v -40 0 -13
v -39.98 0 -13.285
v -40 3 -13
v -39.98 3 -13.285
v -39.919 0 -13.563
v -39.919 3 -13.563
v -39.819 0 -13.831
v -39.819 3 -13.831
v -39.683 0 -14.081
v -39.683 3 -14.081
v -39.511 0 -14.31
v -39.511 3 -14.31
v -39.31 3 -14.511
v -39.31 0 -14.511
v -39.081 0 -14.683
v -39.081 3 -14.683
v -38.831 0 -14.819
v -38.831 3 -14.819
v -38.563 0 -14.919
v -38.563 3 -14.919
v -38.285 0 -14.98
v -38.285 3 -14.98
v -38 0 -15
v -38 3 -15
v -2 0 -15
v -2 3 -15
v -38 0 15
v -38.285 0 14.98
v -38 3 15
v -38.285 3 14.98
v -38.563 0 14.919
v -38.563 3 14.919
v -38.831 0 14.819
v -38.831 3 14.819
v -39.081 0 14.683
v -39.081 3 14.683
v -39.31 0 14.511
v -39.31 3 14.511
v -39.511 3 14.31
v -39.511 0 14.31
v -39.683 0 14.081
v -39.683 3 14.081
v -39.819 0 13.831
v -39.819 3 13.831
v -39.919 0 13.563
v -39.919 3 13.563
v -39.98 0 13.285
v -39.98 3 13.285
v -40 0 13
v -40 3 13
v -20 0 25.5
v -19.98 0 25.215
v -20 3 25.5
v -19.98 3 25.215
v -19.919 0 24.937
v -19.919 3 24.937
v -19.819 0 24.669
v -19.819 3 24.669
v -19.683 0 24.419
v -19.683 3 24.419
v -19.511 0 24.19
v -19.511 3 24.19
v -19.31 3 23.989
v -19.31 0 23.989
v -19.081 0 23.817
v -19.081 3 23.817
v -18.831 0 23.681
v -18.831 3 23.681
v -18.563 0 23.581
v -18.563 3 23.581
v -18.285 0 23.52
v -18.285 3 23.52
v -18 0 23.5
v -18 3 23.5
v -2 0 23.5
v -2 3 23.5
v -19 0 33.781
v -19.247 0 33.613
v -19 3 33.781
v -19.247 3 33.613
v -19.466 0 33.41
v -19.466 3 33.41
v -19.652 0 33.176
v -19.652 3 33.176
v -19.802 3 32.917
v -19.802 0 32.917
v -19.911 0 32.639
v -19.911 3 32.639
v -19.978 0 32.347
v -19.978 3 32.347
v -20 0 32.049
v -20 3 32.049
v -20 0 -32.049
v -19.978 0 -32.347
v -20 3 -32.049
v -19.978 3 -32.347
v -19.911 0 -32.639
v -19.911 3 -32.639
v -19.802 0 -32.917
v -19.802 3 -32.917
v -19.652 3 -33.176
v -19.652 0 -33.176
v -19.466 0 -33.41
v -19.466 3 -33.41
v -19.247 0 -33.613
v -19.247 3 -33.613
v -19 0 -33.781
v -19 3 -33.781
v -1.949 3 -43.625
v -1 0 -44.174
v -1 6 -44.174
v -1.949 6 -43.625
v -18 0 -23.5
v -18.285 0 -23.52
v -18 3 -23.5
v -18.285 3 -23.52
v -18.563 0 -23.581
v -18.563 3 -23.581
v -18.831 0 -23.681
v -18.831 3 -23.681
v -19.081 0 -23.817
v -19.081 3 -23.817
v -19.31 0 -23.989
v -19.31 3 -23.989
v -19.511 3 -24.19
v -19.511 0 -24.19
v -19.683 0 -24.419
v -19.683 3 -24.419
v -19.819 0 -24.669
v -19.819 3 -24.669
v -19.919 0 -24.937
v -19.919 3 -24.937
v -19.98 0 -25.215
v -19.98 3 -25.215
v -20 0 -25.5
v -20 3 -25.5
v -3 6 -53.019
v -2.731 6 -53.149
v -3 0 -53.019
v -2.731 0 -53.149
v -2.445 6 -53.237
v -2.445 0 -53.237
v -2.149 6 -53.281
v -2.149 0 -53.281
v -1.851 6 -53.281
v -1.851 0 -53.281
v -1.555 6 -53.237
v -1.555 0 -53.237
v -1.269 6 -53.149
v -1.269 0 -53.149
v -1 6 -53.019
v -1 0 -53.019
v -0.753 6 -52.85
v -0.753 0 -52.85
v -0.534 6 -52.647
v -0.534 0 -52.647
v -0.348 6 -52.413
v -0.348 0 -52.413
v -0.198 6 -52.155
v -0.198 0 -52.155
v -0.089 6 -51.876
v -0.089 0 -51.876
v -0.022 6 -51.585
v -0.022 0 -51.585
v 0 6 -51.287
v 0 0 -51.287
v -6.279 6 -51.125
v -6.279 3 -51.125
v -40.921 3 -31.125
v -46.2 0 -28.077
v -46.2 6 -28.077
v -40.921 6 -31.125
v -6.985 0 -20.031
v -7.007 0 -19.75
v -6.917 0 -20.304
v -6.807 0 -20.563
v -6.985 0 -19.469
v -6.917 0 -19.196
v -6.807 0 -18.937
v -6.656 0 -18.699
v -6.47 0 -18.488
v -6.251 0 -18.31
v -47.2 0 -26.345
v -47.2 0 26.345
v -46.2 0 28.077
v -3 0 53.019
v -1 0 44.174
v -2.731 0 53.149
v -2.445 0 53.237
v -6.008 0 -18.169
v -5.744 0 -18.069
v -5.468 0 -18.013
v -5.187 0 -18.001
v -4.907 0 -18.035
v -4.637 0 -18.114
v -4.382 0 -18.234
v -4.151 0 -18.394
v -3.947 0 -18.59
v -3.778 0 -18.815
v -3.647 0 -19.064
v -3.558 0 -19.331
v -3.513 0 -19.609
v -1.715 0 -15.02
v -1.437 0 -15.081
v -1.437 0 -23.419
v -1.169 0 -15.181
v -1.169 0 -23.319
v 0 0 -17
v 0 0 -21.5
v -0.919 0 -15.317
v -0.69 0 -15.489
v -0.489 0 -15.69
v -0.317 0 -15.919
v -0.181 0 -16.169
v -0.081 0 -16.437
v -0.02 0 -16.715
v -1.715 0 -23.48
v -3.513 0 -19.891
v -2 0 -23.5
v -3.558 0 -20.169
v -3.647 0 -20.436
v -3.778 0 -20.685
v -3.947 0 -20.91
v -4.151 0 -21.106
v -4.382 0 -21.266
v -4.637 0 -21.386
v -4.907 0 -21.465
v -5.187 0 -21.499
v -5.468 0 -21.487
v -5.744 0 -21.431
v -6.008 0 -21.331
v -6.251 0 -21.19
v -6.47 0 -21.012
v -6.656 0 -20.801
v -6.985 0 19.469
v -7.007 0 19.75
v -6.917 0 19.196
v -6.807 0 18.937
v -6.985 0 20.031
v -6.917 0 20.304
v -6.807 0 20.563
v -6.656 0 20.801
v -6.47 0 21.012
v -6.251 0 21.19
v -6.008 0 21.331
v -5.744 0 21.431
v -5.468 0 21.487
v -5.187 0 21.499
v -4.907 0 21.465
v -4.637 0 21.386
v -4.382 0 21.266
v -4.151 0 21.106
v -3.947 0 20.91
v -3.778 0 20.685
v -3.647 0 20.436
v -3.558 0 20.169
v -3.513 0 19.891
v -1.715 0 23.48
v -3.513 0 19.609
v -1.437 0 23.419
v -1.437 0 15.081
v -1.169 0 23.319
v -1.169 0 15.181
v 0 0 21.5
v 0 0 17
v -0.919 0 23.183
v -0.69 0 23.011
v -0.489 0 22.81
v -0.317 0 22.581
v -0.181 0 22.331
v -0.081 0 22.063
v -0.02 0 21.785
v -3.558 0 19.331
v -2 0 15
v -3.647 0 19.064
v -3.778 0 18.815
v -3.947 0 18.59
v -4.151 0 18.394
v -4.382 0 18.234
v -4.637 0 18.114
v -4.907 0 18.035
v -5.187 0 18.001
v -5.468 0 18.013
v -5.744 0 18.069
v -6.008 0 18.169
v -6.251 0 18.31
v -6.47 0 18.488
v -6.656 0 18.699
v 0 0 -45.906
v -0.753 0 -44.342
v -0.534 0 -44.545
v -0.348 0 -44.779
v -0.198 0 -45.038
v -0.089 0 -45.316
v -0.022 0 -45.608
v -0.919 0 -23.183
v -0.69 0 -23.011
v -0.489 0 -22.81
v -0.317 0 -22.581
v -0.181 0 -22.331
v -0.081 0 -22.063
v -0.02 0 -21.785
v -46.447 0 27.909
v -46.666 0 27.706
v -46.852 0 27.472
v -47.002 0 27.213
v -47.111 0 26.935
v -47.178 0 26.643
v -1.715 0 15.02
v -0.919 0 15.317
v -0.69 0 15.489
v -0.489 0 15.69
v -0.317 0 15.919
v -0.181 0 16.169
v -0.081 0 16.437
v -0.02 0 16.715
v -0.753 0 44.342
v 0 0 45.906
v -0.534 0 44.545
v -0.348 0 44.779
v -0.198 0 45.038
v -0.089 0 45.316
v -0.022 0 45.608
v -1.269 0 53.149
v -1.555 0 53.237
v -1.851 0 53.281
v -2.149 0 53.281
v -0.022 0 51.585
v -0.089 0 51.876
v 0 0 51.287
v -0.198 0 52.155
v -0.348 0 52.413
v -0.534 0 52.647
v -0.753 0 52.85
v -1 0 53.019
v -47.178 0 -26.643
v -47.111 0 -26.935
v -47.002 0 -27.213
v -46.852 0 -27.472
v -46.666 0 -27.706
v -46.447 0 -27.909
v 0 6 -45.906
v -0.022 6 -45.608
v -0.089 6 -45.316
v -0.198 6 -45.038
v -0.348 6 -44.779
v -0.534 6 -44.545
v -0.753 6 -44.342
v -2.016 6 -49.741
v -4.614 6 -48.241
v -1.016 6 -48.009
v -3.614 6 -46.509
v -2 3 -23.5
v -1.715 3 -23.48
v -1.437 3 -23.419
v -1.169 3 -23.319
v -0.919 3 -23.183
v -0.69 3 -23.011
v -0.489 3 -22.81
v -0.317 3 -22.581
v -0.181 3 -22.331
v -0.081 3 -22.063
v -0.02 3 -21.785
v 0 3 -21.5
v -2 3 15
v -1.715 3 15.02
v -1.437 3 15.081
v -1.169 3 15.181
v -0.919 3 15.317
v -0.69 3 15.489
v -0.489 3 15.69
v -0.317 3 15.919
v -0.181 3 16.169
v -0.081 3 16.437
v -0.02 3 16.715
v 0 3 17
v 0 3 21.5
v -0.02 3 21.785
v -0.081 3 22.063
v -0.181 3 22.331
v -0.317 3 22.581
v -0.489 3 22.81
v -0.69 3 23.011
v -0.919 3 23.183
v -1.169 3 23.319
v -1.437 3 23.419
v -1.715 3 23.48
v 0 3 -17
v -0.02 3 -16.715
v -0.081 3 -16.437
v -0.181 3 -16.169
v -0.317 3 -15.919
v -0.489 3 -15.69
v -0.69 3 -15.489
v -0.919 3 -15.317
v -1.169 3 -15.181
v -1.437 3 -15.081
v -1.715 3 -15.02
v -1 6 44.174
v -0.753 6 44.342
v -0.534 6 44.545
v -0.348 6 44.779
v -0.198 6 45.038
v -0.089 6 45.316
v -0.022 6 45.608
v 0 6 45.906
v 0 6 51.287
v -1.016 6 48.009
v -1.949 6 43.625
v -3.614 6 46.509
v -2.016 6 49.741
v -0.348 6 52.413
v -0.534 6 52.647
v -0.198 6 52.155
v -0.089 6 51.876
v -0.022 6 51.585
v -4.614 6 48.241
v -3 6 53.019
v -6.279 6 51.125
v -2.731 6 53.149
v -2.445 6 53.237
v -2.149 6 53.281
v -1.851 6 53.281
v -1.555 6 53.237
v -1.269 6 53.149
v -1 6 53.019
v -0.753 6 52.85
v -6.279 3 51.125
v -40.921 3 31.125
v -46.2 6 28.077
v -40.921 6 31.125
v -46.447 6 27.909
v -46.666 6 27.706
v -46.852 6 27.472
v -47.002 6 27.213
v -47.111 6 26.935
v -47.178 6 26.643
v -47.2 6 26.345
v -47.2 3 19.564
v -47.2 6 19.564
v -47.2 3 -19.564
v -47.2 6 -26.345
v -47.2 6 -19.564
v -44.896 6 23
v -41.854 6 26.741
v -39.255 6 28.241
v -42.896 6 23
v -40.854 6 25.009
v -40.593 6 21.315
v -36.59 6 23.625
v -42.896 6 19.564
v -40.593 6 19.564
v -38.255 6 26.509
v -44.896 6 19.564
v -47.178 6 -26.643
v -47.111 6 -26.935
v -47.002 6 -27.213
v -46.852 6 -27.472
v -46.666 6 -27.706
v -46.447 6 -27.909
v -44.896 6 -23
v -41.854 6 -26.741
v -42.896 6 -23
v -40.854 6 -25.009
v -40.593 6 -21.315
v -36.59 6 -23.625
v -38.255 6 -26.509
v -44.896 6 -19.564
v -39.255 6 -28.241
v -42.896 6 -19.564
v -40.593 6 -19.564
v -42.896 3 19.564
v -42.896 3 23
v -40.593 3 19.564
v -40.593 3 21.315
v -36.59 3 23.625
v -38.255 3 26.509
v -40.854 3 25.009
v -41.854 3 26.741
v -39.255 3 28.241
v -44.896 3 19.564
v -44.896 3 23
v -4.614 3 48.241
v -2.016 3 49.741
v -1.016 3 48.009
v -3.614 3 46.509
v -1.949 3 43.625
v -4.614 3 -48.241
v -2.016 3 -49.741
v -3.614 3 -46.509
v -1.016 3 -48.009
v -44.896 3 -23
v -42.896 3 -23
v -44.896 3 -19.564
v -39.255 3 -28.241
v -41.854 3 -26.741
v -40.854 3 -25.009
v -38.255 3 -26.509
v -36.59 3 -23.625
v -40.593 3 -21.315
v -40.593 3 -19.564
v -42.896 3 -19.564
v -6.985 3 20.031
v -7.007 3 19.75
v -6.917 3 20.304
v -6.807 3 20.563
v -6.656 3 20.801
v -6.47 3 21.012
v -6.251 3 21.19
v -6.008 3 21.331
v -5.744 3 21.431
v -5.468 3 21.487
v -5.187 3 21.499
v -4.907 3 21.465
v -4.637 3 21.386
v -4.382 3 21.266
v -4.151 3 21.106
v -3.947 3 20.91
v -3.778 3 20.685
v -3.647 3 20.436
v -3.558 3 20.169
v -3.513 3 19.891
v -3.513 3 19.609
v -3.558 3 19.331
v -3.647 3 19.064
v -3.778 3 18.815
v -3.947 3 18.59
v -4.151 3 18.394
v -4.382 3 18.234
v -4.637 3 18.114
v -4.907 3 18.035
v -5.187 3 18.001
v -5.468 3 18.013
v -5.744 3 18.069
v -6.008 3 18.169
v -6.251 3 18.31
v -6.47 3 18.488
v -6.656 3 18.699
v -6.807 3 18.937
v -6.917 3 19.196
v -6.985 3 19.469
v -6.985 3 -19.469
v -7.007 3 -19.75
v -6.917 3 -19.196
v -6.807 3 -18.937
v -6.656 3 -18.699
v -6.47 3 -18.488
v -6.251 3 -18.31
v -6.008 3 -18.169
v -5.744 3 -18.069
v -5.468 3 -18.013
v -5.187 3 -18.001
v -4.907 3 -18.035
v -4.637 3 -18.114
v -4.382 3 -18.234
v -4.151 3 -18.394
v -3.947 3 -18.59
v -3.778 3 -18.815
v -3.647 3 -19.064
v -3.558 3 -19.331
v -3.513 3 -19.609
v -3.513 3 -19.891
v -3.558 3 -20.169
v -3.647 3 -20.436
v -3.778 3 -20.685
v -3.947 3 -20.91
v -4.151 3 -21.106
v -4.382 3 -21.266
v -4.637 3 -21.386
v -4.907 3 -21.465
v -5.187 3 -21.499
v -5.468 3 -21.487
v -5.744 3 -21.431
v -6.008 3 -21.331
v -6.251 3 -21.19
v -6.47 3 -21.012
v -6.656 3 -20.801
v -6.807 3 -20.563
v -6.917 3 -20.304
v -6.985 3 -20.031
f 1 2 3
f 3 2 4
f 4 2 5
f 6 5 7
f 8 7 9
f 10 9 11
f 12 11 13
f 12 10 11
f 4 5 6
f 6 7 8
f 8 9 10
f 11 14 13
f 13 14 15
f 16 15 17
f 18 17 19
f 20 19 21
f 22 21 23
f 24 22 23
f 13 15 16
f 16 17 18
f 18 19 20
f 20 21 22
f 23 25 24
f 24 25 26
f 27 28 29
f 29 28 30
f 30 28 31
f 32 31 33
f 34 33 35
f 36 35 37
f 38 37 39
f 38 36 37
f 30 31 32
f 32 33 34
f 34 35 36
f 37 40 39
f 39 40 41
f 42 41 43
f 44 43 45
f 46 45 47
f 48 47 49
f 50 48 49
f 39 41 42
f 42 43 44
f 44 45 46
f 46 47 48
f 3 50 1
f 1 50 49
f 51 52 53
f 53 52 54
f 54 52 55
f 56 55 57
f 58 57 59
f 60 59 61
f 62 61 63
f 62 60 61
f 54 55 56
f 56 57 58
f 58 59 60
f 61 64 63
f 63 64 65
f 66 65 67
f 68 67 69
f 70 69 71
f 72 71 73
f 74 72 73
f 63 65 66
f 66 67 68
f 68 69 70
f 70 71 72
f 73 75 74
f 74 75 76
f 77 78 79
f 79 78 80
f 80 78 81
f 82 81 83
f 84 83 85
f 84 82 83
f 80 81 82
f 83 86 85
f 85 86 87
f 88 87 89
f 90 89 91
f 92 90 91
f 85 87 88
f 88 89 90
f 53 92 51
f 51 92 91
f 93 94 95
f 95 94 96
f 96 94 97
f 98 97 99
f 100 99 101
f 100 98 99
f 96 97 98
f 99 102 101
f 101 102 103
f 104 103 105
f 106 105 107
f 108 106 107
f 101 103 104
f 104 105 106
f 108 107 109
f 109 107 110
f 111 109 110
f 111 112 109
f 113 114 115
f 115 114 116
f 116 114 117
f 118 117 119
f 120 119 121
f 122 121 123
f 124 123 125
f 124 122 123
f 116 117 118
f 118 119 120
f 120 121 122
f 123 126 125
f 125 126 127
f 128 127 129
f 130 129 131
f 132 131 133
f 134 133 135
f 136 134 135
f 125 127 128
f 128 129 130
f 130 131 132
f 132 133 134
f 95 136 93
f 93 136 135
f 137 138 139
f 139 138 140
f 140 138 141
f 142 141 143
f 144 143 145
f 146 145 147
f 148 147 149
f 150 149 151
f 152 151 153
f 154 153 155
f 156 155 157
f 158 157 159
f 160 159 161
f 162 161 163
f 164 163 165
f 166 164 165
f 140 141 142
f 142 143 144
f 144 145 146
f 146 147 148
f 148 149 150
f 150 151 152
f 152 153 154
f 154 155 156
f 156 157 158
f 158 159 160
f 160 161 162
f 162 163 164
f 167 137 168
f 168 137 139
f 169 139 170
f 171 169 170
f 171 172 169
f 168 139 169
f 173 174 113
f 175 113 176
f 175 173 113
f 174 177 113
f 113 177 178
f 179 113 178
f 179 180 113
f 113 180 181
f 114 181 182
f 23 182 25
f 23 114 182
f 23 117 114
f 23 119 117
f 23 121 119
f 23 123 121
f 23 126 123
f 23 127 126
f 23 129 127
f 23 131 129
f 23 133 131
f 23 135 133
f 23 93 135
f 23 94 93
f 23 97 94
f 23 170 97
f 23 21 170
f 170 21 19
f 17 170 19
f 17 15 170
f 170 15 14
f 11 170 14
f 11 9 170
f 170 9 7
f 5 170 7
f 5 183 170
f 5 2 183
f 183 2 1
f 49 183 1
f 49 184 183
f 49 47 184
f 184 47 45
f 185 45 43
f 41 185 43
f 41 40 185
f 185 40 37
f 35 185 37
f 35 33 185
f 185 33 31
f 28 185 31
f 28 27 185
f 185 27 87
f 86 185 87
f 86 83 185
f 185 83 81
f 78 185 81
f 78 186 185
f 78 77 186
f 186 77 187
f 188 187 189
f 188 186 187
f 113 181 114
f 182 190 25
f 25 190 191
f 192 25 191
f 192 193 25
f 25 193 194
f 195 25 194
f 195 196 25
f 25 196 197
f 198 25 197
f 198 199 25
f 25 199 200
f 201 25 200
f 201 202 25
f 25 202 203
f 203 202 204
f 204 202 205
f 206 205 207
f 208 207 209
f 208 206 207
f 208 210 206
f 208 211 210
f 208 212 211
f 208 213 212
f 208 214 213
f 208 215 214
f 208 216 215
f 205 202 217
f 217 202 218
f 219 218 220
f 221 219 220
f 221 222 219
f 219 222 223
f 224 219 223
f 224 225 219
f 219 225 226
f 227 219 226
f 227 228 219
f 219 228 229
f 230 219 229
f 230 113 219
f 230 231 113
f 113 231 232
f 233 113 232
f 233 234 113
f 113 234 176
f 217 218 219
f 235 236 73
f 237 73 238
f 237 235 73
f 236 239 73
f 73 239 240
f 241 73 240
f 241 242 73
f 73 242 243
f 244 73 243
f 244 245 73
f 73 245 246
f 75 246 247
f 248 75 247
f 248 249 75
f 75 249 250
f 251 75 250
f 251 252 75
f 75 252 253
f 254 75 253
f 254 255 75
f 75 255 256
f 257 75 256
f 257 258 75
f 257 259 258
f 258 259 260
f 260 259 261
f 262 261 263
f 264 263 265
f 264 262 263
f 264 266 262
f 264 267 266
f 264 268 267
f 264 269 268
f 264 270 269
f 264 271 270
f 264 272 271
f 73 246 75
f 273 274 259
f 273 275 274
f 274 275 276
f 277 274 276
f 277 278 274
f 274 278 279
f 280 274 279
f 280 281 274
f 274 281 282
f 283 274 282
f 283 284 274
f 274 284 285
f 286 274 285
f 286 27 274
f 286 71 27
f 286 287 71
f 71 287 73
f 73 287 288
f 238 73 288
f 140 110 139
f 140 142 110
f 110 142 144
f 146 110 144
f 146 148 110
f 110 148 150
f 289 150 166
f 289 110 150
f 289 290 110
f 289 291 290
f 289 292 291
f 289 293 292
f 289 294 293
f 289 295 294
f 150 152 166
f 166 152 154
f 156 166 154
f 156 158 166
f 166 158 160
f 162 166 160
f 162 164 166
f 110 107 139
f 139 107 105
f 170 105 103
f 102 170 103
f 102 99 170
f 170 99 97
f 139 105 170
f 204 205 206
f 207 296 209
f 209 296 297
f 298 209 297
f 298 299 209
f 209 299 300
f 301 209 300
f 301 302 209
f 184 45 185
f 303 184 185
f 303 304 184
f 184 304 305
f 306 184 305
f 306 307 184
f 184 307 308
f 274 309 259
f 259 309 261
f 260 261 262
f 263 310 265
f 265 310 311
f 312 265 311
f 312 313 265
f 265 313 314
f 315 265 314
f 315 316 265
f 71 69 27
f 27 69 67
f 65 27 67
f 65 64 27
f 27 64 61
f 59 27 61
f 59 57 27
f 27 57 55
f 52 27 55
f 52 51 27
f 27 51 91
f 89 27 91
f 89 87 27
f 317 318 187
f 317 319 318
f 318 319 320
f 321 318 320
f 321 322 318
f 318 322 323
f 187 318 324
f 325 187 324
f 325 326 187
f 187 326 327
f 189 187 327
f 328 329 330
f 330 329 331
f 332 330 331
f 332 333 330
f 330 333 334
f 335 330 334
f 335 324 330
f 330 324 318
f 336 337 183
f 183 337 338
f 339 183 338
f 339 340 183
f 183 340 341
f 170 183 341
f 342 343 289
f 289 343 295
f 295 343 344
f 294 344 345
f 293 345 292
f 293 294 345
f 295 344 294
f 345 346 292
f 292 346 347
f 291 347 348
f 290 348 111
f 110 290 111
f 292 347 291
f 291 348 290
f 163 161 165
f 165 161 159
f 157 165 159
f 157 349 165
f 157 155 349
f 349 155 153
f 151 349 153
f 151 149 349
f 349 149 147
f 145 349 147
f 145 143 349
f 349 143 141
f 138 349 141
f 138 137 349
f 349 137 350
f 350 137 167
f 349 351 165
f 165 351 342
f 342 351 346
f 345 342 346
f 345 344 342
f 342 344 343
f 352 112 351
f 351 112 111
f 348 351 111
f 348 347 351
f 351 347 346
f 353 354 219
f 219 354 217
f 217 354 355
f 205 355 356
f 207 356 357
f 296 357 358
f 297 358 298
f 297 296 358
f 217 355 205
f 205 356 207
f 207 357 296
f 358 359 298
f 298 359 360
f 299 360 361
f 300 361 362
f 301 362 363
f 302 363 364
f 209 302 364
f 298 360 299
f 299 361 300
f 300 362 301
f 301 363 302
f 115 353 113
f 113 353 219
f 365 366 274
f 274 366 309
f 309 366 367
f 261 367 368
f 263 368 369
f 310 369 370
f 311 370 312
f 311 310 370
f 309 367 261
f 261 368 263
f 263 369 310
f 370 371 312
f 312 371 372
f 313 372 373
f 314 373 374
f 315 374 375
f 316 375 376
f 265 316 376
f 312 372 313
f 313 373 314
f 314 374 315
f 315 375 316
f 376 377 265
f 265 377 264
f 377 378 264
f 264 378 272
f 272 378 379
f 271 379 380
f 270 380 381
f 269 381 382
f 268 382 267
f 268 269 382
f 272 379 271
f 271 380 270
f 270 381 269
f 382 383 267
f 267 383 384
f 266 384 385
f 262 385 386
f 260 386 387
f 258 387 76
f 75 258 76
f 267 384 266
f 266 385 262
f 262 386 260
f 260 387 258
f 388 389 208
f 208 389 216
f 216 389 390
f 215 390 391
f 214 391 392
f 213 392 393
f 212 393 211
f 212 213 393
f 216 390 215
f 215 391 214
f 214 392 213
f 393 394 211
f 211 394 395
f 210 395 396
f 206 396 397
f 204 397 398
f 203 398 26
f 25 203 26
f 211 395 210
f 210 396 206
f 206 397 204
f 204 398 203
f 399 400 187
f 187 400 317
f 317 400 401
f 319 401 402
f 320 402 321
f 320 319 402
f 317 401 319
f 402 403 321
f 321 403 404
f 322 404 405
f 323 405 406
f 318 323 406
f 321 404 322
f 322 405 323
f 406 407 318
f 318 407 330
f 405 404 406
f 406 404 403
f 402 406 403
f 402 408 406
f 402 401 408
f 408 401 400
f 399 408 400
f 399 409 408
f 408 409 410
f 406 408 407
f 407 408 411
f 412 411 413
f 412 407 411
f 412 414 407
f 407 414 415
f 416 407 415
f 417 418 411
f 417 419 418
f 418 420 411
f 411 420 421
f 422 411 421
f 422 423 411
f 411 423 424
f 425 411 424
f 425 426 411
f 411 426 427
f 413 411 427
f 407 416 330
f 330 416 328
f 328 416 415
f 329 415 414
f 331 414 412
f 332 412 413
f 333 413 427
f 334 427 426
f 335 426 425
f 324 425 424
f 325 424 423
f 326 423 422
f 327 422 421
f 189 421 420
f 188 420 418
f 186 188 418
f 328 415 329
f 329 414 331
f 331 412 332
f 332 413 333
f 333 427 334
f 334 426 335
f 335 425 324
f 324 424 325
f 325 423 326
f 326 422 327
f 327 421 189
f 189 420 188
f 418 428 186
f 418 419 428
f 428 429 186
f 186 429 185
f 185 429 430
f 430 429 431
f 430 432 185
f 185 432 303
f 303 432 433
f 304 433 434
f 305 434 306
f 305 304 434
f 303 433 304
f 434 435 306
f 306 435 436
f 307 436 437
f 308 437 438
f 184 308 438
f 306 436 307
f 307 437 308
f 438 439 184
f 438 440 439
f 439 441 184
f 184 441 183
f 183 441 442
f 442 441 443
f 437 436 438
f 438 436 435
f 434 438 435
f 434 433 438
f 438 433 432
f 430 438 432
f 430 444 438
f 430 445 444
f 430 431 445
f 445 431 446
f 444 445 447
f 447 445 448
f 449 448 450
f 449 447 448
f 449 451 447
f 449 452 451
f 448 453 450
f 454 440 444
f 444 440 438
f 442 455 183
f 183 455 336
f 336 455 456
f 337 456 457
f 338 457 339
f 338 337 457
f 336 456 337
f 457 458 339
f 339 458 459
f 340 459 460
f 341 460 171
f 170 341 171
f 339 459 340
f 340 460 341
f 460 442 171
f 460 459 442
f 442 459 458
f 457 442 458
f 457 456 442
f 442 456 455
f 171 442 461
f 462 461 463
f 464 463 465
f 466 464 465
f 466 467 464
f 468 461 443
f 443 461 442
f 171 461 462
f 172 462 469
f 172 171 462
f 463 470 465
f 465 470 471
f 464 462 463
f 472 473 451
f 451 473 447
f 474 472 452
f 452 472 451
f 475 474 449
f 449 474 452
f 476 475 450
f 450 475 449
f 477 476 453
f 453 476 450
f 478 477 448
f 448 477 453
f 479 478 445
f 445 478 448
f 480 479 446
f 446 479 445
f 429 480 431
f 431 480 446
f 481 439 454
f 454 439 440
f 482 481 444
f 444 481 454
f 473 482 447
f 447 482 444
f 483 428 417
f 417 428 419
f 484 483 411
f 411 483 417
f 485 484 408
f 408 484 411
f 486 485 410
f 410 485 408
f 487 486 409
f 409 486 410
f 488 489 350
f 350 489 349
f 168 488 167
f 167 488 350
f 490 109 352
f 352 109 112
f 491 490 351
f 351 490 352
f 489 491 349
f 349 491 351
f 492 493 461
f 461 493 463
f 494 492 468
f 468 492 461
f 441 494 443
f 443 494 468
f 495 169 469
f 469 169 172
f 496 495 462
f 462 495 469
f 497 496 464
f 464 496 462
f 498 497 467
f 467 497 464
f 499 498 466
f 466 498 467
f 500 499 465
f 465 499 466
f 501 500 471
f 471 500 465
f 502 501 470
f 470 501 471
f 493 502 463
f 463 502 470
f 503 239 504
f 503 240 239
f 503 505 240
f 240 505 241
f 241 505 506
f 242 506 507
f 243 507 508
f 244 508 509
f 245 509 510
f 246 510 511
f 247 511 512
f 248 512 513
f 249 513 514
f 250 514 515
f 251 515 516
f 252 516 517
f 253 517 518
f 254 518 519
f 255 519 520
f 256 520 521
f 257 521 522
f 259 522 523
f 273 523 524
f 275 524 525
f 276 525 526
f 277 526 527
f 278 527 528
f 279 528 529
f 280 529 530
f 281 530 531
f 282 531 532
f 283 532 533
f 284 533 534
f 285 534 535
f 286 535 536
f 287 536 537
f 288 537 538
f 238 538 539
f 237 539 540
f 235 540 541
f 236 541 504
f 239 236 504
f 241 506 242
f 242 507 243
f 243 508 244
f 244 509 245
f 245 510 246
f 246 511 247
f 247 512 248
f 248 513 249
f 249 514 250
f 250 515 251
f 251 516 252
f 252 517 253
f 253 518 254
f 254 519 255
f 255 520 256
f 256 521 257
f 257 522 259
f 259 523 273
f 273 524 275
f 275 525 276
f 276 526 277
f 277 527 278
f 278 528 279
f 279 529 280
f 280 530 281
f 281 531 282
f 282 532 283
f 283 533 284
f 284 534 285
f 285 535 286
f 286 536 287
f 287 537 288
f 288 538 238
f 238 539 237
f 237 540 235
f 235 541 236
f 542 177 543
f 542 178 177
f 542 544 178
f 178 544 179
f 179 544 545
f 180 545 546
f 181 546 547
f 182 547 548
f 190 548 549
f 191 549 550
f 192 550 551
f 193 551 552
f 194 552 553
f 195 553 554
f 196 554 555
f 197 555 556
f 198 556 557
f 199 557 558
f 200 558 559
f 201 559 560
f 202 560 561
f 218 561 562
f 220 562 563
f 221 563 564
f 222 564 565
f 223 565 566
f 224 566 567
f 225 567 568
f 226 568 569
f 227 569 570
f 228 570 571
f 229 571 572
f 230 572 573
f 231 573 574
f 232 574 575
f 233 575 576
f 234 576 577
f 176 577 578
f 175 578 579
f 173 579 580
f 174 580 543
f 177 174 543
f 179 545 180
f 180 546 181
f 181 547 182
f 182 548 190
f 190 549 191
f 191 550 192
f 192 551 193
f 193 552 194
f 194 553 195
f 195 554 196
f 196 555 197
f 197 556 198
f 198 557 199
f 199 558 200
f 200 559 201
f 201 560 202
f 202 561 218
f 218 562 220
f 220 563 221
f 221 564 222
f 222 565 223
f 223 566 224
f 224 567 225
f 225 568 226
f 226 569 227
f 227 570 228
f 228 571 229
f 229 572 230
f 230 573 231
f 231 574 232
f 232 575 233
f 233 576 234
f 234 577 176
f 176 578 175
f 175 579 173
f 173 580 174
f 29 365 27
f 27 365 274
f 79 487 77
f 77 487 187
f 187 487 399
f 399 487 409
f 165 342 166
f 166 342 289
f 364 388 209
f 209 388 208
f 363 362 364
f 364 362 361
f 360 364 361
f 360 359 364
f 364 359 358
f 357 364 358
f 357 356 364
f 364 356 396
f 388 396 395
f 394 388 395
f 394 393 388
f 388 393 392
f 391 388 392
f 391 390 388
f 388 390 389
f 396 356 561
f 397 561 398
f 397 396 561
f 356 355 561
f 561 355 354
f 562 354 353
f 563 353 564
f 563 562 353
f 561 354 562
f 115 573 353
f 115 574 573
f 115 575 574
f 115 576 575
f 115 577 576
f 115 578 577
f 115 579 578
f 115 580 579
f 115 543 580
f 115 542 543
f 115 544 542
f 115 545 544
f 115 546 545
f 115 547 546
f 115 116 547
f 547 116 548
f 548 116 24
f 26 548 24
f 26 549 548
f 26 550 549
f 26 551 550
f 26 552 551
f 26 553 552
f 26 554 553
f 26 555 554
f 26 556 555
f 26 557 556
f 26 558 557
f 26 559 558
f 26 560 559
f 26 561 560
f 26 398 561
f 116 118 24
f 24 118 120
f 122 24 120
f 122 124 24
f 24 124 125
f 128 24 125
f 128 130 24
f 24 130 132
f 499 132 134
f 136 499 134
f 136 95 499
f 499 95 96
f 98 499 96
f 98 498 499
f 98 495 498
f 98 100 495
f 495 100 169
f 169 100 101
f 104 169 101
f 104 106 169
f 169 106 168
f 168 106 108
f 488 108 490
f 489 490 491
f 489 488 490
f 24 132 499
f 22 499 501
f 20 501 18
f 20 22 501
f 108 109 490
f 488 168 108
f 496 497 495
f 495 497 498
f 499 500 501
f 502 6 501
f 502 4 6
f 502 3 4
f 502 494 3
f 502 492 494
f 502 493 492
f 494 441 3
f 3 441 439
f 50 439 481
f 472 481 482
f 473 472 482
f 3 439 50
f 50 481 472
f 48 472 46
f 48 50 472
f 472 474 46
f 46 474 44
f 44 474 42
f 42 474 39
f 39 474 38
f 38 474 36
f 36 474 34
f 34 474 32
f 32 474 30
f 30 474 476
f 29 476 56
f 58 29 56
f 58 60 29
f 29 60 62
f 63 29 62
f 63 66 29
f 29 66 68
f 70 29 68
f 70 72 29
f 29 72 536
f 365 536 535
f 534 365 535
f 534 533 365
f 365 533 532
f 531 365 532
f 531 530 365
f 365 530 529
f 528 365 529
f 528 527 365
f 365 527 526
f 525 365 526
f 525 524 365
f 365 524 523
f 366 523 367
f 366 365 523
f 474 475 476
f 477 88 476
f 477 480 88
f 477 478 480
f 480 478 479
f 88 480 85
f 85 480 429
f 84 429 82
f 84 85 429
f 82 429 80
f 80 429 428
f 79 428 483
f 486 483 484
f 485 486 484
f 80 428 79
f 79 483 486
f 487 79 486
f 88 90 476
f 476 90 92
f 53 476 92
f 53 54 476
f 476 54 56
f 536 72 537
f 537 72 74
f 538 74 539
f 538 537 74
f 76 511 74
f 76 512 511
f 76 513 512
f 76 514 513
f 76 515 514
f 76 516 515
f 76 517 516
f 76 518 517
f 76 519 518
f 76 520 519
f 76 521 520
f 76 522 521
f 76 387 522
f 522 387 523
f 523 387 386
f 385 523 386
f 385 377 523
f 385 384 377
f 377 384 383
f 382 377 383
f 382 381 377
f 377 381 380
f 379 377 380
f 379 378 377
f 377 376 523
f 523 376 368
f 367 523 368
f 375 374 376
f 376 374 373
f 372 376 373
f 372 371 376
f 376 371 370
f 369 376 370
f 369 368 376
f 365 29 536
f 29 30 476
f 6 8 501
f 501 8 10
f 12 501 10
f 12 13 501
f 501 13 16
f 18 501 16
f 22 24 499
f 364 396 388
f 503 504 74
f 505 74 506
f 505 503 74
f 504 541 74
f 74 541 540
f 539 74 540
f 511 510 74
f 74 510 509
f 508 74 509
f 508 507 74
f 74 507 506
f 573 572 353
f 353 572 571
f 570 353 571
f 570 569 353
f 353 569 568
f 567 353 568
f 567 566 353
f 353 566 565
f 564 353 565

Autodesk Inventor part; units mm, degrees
ref_plane "YZ Plane" through (0, 0, 0) normal (1, 0, 0) x (0, 1, 0)
ref_plane "XZ Plane" through (0, 0, 0) normal (0, 1, 0) x (-1, 0, 0)
ref_plane "XY Plane" through (0, 0, 0) normal (0, 0, 1) x (1, 0, 0)
sketch "Sketch1" plane through (0, 0, 0) normal (0, 1, 0) x (-1, 0, 0)
  line L0 (0, -15) -> (40, -15)
  line L1 (0, -54.7509) -> (0, -44.7509)
  line L2 (20, -23.5) -> (0, -23.5)
  line L3 (0, -23.5) -> (0, -15)
  circle A0 centre (5.2574, -19.75) radius 1.75
  line L4 (47.2, -27.5) -> (0, -54.7509)
  line L5 (0, -44.7509) -> (20, -33.2039)
  line L6 (20, -23.5) -> (20, -33.2039)
  line L7 (0, 15) -> (40, 15)
  line L8 (0, 54.7509) -> (0, 44.7509)
  line L9 (20, 23.5) -> (0, 23.5)
  line L10 (0, 23.5) -> (0, 15)
  circle A1 centre (5.2574, 19.75) radius 1.75
  line L11 (47.2, 27.5) -> (0, 54.7509)
  line L12 (0, 44.7509) -> (20, 33.2039)
  line L13 (20, 23.5) -> (20, 33.2039)
  line L14 (47.2, 27.5) -> (47.2, -27.5)
  line L15 (40, 15) -> (40, -15)
  line L16 (56.64, 0) -> (-9.44, 0) projected
  line L17 (0, -76.6513) -> (0, 76.6513) projected
  point P0 (0, 0)
  point P1 (0, 19.25)
  dimension "d3" = 15
  dimension "d6" = 5.2573
  dimension "d7" = 3.5
  dimension "d8" = 8.5
  dimension "d10" = 10
  dimension "d13" = 47.2
  dimension "d15" = 39.5
  dimension "d29" = 15
  dimension "d30" = 5.2573
  dimension "d31" = 40
  dimension "d32" = 19.75
  dimension "d33" = 8.5
  dimension "d34" = 20
  dimension "d35" = 20
  dimension "d37" = 60
  dimension "d38" = 60
  dimension "d39" = 55
  dimension "d40" = 27.5
  dimension "d41" = 10
  dimension "d68" = 21.2509
extrude "Extrusion1" add sketch "Sketch1" along normal blind 3 contours L0 L15 L16 L14 L4 L1 L5 L6 L2 L3 | L15 L7 L10 L9 L13 L12 L8 L11 L14 L16
sketch "Sketch2" plane through (0, 3, 0) normal (0, 1, 0) x (1, 0, 0)
  line L0 (-42.8964, 23) -> (-44.8964, 23)
  line L1 (-2.0164, 49.7415) -> (-1.0164, 48.0094)
  line L2 (-40.8535, 25.0094) -> (-41.8535, 26.7415)
  line L3 (-1.0164, -48.0094) -> (-2.0164, -49.7415)
  line L4 (-41.8535, -26.7415) -> (-40.8535, -25.0094)
  line L5 (-40.9205, -31.1255) -> (-39.2554, -28.2415)
  line L6 (-38.2554, -26.5094) -> (-36.5904, -23.6255)
  line L7 (-42.8964, -19.564) -> (-40.5928, -19.564)
  line L8 (-44.8964, -19.564) -> (-47.2, -19.564)
  line L9 (-47.2, 27.5) -> (-47.2, -27.5) projected
  line L10 (-47.2, -27.5) -> (-40.9205, -31.1255)
  line L11 (-47.2, -27.5) -> (0, -54.7509) projected
  line L12 (-4.6144, -48.2415) -> (-6.2795, -51.1255)
  line L13 (-3.6144, -46.5094) -> (-1.9494, -43.6255)
  line L14 (0, -44.7509) -> (-20, -33.2039) projected
  line L15 (-39.2554, 28.2415) -> (-40.9205, 31.1255)
  line L16 (-38.2554, 26.5094) -> (-36.5904, 23.6255)
  line L17 (-3.6144, 46.5094) -> (-1.9494, 43.6255)
  line L18 (-4.6144, 48.2415) -> (-6.2795, 51.1255)
  line L19 (-38.2554, -26.5094) -> (-40.8535, -25.0094)
  line L20 (-41.8535, -26.7415) -> (-39.2554, -28.2415)
  line L21 (-42.8964, -23) -> (-42.8964, -19.564)
  line L22 (-4.6144, -48.2415) -> (-2.0164, -49.7415)
  line L23 (-3.6144, -46.5094) -> (-1.0164, -48.0094)
  line L24 (-6.2795, -51.1255) -> (0, -54.7509)
  line L25 (0, -54.7509) -> (0, -44.7509)
  line L26 (0, -44.7509) -> (-1.9494, -43.6255)
  line L27 (-40.8535, 25.0094) -> (-38.2554, 26.5094)
  line L28 (-41.8535, 26.7415) -> (-39.2554, 28.2415)
  line L29 (-3.6144, 46.5094) -> (-1.0164, 48.0094)
  line L30 (-4.6144, 48.2415) -> (-2.0164, 49.7415)
  line L31 (-1.9494, 43.6255) -> (0, 44.7509)
  line L32 (0, 54.7509) -> (-6.2795, 51.1255)
  line L33 (0, 44.7509) -> (0, 54.7509)
  line L34 (-42.8964, 23) -> (-42.8964, 19.564)
  line L35 (-42.8964, 19.564) -> (-40.5928, 19.564)
  line L36 (-44.8964, 19.564) -> (-47.2, 19.564)
  line L37 (-47.2, 19.564) -> (-47.2, 27.5)
  line L38 (-47.2, 27.5) -> (-40.9205, 31.1255)
  line L39 (0, 54.7509) -> (-47.2, 27.5) projected
  line L40 (-20, 33.2039) -> (0, 44.7509) projected
  line L41 (-44.8964, -19.564) -> (-44.8964, -23)
  line L42 (-44.8964, -23) -> (-42.8964, -23)
  line L43 (-36.5904, 23.6255) -> (-40.5928, 21.3147)
  line L44 (-36.5904, -23.6255) -> (-40.5928, -21.3147)
  line L45 (-40.5928, -21.3147) -> (-40.5928, -19.564)
  line L46 (-40.5928, 19.564) -> (-40.5928, 21.3147)
  line L47 (-47.2, -27.5) -> (-47.2, -19.564)
  line L48 (-44.8964, 19.564) -> (-44.8964, 23)
  point P0 (0, 0)
  dimension "d20" = 2
  dimension "d21" = 46
  dimension "d25" = 2
  dimension "d44" = 3.3301
  dimension "d45" = 3.3301
  dimension "d46" = 46
  dimension "d47" = 3
  dimension "d48" = 3
  dimension "d49" = 7.2509
  dimension "d50" = 7.2509
  dimension "d53" = 3.3301
  dimension "d54" = 3.3301
  dimension "d55" = 3
  dimension "d56" = 3
  dimension "d57" = 7.2509
  dimension "d58" = 7.2509
  dimension "d59" = 2
  dimension "d61" = 2.3036
  dimension "d62" = 2.3036
  dimension "d63" = 2.3036
  dimension "d64" = 2.3036
  dimension "d72" = 46
  dimension "d73" = 2
  dimension "d74" = 2
  dimension "d75" = 3.3301
  dimension "d76" = 3.3301
  dimension "d77" = 7.936
  dimension "d78" = 7.936
extrude "Extrusion2" add sketch "Sketch2" along normal blind 3
fillet "Fillet1" radius 2 16 edges at (-47.2, 3, -27.5) (-47.2, 3, 27.5) (0, 3, 54.7509) (0, 3, 44.7509) (0, 1.5, -15) (0, 1.5, 23.5) (0, 1.5, 15) (0, 1.5, -23.5) (0, 3, -44.7509) (0, 3, -54.7509) (-20, 1.5, -23.5) (-20, 1.5, -33.2039) (-20, 1.5, 33.2039) (-20, 1.5, 23.5) (-40, 1.5, 15) (-40, 1.5, -15)
equation "\"d30\" = d6"
equation "\"d32\" = 0.5 * d15"
equation "\"d33\" = d8"
equation "\"d35\" = d34"
properties part number "walle"
